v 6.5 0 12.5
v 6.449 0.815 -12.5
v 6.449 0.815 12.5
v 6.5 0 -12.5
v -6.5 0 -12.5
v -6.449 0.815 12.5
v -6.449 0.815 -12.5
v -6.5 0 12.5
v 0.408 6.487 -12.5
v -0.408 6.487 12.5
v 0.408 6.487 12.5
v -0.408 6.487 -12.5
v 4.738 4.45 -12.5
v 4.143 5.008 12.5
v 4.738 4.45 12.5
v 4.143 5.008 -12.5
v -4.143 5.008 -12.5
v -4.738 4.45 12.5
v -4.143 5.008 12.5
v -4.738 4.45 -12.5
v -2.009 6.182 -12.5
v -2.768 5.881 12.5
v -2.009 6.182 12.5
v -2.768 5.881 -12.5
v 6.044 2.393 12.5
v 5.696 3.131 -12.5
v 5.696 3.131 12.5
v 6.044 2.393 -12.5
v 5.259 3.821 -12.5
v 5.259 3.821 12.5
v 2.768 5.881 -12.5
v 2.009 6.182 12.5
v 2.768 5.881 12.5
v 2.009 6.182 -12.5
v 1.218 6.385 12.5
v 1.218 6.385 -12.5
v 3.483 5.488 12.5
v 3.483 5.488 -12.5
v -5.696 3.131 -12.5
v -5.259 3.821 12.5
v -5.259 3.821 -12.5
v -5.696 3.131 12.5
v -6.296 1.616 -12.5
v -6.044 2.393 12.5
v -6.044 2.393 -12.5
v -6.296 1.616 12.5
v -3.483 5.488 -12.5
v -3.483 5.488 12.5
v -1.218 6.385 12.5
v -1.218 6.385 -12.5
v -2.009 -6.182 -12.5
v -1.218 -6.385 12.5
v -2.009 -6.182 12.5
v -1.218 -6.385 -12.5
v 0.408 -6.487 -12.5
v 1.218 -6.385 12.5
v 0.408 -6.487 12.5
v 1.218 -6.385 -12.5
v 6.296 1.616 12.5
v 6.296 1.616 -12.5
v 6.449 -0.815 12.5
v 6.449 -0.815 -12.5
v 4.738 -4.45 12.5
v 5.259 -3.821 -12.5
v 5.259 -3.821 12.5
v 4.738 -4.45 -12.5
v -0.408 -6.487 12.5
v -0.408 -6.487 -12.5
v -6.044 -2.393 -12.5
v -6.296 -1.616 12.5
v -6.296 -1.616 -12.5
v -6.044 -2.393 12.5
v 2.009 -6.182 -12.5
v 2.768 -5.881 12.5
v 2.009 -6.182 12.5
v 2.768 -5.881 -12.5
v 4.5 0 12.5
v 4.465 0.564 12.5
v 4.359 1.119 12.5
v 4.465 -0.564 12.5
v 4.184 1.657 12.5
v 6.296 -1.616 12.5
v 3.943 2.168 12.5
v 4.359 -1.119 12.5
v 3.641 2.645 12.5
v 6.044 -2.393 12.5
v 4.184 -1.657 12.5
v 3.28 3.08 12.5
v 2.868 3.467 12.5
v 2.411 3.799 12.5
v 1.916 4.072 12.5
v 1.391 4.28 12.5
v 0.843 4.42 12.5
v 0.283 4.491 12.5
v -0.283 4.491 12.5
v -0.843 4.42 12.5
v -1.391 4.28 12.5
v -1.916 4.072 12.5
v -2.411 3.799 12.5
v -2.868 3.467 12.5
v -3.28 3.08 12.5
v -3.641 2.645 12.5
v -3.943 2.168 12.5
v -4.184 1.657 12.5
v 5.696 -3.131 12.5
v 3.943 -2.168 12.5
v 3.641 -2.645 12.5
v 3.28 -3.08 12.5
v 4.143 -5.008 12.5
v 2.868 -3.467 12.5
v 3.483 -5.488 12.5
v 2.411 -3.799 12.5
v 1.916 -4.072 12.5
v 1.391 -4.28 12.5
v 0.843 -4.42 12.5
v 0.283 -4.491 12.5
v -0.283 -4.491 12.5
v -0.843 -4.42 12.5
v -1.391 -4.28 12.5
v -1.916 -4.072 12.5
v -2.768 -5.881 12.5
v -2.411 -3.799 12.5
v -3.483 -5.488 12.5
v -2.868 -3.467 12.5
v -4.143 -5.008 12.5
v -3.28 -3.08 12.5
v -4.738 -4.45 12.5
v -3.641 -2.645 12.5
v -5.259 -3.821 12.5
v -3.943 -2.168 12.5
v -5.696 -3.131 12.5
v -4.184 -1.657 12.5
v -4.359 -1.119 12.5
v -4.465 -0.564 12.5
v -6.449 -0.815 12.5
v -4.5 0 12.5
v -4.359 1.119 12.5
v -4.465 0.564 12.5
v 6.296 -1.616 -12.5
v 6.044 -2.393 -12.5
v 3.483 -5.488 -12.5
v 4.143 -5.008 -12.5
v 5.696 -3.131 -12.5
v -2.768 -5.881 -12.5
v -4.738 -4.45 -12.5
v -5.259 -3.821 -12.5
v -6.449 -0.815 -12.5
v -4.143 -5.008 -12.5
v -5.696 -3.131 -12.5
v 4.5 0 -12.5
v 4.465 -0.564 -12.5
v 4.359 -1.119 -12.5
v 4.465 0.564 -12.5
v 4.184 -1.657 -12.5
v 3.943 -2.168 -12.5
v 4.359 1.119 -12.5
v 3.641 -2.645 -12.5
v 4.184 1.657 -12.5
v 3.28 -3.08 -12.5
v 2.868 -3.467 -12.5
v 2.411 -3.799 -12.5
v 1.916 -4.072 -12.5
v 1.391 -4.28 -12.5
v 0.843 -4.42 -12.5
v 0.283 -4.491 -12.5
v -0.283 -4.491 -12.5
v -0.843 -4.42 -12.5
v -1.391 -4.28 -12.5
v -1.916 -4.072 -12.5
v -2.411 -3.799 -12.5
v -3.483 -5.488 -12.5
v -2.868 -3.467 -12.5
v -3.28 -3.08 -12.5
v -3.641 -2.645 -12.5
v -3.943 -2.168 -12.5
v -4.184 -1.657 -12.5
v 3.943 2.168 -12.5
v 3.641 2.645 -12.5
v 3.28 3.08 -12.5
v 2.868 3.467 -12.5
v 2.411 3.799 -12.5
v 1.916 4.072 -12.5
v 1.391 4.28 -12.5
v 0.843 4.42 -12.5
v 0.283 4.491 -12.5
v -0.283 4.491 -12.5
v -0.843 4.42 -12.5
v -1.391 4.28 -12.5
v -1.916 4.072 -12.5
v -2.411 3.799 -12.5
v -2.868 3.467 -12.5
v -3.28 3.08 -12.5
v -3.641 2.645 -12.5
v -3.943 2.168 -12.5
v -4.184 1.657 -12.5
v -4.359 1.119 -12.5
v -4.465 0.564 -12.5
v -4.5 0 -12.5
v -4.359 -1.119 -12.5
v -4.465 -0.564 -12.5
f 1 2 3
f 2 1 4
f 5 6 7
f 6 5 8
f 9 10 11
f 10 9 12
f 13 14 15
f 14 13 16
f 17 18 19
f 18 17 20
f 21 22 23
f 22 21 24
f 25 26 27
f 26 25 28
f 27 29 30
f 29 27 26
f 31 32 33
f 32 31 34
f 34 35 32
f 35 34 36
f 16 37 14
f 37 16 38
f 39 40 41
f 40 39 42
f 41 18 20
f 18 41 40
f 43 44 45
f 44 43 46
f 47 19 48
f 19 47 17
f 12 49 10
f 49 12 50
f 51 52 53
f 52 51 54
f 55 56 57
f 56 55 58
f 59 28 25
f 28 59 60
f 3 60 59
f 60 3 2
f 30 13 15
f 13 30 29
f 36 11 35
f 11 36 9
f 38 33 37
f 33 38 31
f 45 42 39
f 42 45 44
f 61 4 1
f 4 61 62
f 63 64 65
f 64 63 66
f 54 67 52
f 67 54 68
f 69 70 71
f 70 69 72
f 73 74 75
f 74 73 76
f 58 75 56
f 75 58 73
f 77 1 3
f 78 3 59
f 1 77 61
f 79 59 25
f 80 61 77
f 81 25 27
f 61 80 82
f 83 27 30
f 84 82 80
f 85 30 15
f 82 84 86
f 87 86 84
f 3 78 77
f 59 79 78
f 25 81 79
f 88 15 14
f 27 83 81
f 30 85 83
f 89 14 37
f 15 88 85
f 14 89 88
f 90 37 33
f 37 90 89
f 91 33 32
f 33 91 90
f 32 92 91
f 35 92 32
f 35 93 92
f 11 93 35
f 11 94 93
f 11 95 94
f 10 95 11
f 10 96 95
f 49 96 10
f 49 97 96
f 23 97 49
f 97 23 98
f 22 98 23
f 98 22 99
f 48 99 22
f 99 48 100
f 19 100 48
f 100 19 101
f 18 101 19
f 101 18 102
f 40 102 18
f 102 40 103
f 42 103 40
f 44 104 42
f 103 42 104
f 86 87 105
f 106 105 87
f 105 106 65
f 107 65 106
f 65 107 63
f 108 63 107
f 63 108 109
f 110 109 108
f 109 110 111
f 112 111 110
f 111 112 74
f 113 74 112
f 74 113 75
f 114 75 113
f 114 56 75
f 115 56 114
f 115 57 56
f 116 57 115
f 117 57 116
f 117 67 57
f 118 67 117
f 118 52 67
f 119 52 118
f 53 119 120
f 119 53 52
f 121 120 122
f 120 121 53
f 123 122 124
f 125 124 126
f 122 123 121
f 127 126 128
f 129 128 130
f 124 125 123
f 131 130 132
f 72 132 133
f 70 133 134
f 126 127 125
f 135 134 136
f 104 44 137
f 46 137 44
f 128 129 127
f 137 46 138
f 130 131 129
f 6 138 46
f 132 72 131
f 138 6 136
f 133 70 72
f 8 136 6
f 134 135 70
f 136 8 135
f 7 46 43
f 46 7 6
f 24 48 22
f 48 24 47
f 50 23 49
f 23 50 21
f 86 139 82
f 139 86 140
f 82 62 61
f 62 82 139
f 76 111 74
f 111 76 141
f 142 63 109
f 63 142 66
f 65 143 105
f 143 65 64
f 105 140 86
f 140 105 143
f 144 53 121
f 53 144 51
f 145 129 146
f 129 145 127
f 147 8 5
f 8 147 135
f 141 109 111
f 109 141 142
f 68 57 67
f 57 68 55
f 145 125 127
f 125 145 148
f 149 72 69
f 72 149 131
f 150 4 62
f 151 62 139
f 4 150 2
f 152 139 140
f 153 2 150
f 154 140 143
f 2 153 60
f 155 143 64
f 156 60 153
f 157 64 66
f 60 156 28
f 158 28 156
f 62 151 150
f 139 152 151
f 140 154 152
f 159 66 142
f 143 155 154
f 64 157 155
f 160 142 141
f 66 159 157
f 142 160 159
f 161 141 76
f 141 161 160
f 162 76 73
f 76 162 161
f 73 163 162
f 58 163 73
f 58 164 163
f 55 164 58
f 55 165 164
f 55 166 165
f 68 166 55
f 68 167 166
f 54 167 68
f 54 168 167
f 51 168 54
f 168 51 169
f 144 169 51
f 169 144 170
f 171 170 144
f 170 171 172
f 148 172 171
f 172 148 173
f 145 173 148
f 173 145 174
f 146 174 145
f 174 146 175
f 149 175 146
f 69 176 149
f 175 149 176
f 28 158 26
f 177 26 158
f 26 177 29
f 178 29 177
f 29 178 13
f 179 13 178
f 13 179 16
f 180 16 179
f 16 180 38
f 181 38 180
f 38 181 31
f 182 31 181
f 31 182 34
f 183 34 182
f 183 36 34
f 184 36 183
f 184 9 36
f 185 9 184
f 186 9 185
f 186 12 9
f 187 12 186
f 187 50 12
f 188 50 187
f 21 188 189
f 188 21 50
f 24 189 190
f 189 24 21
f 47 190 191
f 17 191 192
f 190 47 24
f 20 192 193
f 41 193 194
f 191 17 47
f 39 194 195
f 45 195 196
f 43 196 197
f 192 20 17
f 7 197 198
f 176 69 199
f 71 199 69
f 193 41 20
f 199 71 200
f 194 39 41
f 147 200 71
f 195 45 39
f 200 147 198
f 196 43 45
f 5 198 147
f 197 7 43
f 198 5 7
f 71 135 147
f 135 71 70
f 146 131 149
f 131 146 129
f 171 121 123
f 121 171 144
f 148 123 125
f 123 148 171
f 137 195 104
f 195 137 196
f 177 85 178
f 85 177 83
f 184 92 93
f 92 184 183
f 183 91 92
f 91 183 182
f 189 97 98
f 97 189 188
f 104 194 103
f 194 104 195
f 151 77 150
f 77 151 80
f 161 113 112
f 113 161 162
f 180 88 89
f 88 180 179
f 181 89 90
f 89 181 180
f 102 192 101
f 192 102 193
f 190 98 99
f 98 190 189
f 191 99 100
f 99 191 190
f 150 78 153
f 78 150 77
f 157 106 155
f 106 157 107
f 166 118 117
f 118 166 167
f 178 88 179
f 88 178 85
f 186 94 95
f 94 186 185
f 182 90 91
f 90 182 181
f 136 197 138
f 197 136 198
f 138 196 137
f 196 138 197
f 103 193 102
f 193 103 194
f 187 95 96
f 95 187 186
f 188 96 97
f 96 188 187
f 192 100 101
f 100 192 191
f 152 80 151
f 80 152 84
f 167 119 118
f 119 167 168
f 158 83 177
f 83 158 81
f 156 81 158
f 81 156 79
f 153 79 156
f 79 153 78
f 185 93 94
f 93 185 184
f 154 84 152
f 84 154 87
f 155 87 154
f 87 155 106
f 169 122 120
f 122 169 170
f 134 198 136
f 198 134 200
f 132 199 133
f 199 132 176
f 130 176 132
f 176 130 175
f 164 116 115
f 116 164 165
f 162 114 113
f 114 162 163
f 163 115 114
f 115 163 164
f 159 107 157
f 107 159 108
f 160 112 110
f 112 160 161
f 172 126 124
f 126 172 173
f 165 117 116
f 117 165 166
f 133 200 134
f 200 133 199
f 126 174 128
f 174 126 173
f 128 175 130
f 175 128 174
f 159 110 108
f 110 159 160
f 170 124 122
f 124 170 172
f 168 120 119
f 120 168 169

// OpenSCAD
$fn = 50;


difference() {
	union() {
		translate(v = [0, 0, -12.5000000000]) {
			cylinder(h = 25, r = 6.5000000000);
		}
	}
	union() {
		translate(v = [0, 0, -100.0000000000]) {
			cylinder(h = 200, r = 4.5000000000);
		}
	}
}
